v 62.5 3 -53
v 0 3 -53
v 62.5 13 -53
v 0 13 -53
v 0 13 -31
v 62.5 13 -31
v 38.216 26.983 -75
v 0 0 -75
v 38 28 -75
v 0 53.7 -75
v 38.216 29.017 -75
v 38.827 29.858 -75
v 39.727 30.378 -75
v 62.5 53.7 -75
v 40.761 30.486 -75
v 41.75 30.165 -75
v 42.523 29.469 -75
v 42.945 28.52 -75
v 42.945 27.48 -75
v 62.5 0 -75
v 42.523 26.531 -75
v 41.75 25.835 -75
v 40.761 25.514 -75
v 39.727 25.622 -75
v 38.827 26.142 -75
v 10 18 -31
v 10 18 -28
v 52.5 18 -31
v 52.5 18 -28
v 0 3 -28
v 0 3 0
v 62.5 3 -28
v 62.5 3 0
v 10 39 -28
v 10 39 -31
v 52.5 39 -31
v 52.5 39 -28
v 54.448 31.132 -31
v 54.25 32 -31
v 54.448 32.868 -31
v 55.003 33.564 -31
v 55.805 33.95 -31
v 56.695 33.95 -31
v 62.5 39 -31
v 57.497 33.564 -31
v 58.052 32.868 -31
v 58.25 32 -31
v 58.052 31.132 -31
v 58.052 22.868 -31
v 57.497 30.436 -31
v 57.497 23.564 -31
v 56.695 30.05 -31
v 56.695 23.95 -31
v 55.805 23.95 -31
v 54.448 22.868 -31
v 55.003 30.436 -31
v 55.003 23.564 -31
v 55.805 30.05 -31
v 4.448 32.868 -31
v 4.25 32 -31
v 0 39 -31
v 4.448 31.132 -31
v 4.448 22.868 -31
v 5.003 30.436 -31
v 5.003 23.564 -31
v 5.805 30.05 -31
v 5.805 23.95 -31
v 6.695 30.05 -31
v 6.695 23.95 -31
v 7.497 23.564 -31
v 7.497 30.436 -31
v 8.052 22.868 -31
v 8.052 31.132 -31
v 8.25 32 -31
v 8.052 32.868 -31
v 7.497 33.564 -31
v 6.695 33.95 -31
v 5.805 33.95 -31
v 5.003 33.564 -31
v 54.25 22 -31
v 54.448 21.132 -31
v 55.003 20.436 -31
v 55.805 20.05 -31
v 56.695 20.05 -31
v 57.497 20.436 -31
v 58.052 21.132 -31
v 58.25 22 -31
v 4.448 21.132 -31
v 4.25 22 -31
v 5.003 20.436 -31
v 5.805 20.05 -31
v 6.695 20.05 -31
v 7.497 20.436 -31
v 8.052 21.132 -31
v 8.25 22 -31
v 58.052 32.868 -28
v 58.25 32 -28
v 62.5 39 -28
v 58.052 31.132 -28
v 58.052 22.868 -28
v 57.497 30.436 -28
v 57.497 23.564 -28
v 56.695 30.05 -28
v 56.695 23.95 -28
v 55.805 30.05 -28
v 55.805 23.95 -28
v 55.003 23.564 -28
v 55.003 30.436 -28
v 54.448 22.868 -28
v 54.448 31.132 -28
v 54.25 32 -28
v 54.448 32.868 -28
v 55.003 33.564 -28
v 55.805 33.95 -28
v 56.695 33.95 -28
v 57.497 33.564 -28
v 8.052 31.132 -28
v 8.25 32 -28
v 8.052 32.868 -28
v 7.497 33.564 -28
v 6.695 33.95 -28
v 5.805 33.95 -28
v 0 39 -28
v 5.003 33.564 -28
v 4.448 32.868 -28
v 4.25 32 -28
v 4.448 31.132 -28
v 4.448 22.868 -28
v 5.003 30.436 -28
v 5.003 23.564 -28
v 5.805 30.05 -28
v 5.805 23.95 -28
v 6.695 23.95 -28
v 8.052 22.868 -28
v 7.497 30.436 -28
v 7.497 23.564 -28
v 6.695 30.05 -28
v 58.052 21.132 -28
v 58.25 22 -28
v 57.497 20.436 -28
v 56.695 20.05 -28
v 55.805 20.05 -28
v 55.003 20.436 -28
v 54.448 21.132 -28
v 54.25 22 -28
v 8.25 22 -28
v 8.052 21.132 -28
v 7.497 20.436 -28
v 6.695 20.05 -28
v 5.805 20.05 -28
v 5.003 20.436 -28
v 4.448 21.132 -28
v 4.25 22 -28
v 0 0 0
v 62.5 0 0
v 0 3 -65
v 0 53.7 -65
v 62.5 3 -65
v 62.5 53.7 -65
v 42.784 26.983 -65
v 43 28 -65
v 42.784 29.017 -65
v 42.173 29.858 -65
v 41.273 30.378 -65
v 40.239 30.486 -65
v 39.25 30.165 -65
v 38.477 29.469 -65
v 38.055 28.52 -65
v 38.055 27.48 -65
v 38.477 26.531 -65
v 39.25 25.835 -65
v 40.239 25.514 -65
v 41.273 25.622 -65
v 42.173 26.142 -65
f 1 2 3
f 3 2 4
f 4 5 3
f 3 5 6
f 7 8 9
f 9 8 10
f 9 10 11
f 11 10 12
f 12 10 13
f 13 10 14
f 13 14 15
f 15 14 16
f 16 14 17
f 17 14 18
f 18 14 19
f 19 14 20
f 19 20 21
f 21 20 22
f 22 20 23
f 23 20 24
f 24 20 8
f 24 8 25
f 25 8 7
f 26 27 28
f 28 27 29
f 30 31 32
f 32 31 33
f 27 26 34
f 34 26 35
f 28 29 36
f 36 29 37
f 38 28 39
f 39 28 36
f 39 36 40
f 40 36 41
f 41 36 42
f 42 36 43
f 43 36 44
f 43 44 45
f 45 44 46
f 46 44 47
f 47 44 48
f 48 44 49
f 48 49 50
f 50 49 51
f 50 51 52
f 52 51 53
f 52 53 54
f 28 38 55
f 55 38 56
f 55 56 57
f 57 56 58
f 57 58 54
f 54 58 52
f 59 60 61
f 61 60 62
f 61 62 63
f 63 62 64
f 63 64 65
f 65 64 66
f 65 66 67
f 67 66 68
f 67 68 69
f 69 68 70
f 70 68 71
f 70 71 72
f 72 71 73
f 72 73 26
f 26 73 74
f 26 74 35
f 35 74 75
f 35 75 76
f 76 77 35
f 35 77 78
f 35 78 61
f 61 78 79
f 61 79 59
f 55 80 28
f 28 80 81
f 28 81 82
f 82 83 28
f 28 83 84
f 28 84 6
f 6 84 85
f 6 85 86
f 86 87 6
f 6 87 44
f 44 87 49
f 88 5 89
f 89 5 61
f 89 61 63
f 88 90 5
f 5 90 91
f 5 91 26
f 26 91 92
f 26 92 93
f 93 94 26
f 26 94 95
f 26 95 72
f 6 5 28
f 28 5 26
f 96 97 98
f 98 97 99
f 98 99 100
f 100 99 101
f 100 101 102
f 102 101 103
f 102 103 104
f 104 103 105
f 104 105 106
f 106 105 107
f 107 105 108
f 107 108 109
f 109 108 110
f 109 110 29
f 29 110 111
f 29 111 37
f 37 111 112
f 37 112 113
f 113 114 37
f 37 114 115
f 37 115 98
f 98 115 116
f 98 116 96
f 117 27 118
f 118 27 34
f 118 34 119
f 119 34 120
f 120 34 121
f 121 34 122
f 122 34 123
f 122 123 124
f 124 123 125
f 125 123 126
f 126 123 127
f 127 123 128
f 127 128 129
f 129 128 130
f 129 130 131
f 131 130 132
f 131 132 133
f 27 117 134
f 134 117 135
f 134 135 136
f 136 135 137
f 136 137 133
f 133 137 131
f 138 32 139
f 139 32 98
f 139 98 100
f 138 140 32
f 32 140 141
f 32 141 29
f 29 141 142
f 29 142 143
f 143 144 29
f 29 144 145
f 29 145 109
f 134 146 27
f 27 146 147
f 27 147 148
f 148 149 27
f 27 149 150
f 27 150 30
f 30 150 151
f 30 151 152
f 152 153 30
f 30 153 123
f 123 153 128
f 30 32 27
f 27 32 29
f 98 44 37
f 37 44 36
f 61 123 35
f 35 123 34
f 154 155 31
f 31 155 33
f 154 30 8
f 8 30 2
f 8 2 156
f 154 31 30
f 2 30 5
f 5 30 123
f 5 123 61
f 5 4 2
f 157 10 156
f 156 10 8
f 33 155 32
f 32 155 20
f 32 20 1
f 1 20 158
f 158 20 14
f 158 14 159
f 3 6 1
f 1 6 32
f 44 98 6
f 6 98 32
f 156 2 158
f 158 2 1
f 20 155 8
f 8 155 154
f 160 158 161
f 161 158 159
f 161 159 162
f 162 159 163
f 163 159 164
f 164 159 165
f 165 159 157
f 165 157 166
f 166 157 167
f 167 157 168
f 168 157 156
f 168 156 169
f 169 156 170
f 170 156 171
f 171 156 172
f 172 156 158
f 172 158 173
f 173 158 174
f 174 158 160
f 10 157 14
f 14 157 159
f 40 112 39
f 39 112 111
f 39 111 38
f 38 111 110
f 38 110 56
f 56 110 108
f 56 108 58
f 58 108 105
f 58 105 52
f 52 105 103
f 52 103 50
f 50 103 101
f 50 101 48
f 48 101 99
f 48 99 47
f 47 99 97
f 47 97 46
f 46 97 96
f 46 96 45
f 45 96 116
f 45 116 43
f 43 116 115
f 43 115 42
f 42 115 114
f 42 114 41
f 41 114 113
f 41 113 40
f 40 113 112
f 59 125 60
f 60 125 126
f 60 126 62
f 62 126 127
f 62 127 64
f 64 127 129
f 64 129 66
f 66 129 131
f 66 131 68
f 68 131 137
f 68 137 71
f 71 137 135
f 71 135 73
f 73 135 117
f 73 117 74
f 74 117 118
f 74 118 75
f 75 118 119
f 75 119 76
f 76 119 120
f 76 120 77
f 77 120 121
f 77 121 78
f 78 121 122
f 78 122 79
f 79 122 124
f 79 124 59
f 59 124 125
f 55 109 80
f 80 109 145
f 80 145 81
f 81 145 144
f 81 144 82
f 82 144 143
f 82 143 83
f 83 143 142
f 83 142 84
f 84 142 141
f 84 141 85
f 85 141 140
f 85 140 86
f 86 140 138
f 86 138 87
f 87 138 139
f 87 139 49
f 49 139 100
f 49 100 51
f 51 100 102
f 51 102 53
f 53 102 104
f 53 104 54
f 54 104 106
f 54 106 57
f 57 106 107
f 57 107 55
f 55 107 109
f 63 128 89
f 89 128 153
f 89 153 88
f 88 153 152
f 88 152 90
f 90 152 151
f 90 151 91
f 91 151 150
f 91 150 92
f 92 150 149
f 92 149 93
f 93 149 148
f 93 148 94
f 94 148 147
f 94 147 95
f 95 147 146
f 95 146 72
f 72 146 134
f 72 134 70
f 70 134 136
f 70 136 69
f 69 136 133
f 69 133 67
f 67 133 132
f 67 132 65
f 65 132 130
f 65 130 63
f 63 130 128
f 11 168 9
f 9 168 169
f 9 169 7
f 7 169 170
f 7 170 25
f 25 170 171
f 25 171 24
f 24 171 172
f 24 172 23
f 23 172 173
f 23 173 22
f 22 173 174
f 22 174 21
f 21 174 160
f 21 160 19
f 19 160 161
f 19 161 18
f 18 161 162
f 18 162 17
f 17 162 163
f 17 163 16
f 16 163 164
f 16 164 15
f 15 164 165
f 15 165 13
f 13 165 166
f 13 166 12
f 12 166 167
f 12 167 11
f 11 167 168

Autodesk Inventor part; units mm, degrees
ref_plane "YZ Plane" through (0, 0, 0) normal (1, 0, 0) x (0, 1, 0)
ref_plane "XZ Plane" through (0, 0, 0) normal (0, 1, 0) x (-1, 0, 0)
ref_plane "XY Plane" through (0, 0, 0) normal (0, 0, 1) x (1, 0, 0)
sketch "Boceto1" plane through (0, 0, 0) normal (0, 1, 0) x (-1, 0, 0)
  line L0 (0, 0) -> (-62.5, 0)
  line L1 (-62.5, 0) -> (-62.5, -75)
  line L2 (-62.5, -75) -> (0, -75)
  line L3 (0, -75) -> (0, 0)
  dimension "d0" = 62.5
  dimension "d1" = 75
extrude "Extrusión1" add sketch "Boceto1" along normal blind 3
sketch "Boceto3" plane through (0, 3, 0) normal (0, 1, 0) x (1, 0, 0)
  line L0 (0, 0) -> (62.5, 0) construction
  line L1 (31.25, 0) -> (31.25, 28) construction
  line L2 (31.25, 28) -> (0, 28)
  line L3 (0, 28) -> (0, 31)
  line L4 (0, 75) -> (0, 0) projected
  line L5 (0, 31) -> (62.5, 31)
  line L6 (62.5, 0) -> (62.5, 75) projected
  line L7 (62.5, 28) -> (31.25, 28)
  line L8 (10, 28) -> (10, 31)
  line L9 (52.5, 28) -> (52.5, 31)
  line L10 (31.25, 31) -> (31.25, 53) construction
  line L11 (31.25, 53) -> (0, 53)
  line L12 (31.25, 53) -> (62.5, 53)
  line L13 (62.5, 75) -> (0, 75) construction
  line L14 (31.25, 75) -> (31.25, 65) construction
  line L15 (62.5, 65) -> (0, 65)
  line L16 (0, 65) -> (0, 75)
  line L17 (62.5, 75) -> (62.5, 65)
  line L18 (62.5, 75) -> (0, 75)
  dimension "d4" = 28
  dimension "d5" = 3
  dimension "d9" = 22
  dimension "d10" = 10
extrude "Extrusión2" add sketch "Boceto3" along normal blind 36 contours L2 L3 L5 L8 | L9 L5 L6 L7
extrude "Extrusión3" add sketch "Boceto3" along normal blind 15 contours L2 L8 L5 L9 L7
extrude "Extrusión4" add sketch "Boceto3" along normal blind 10 contours L5 L4 L11 L12 L6
extrude "Extrusión5" add sketch "Boceto3" along normal blind 50.7 contours L4 L18 L6 L15
sketch "Boceto4" plane through (0, 3, -28) normal (0, 0, 1) x (1, 0, 0)
  line L0 (62.5, 0) -> (0, 0) construction
  line L1 (62.5, 0) -> (62.5, 36) construction
  line L2 (52.5, 36) -> (62.5, 36) construction
  line L3 (52.5, 15) -> (52.5, 36) construction
  line L4 (10, 15) -> (52.5, 15) construction
  line L5 (10, 15) -> (10, 36) construction
  line L6 (0, 36) -> (10, 36) construction
  line L7 (0, 0) -> (0, 36) construction
  line L8 (0, 0) -> (0, 22) construction
  line L9 (0, 0) -> (0, 32) construction
  line L10 (0, -3) -> (0, 19) construction
  line L11 (0, 19) -> (62.5, 19) construction
  line L12 (0, -3) -> (0, 29) construction
  line L13 (0, 29) -> (62.5, 29) construction
  line L14 (0, 29) -> (6.25, 29) construction
  line L15 (0, 19) -> (6.25, 19) construction
  line L16 (62.5, 29) -> (56.25, 29) construction
  line L17 (62.5, 19) -> (56.25, 19) construction
  circle A0 centre (6.25, 29) radius 2
  circle A1 centre (6.25, 19) radius 2
  line L18 (62.5, -3) -> (0, -3) construction
  line L19 (31.25, -3) -> (31.25, 50.7118) construction
  circle A2 centre (56.25, 29) radius 2
  circle A3 centre (56.25, 19) radius 2
  dimension "d21" = 22
  dimension "d22" = 32
  dimension "d23" = 6.25
  dimension "d24" = 6.25
  dimension "d25" = 6.25
  dimension "d26" = 4
  dimension "d27" = 4
extrude "Extrusión6" cut sketch "Boceto4" against normal blind 20
sketch "Boceto5" plane through (0, 3, -65) normal (0, 0, 1) x (1, 0, 0)
  line L0 (62.5, -3) -> (0, -3) construction
  line L1 (0, -3) -> (0, 25) construction
  line L2 (0, 10) -> (0, 36) construction
  line L3 (0, -3) -> (40.5, -3) construction
  line L4 (40.5, -3) -> (40.5, 25) construction
  circle A0 centre (40.5, 25) radius 2.5
  dimension "d30" = 28
  dimension "d31" = 40.5
  dimension "d32" = 5
extrude "Extrusión7" cut sketch "Boceto5" against normal blind 20
properties part number "Mounting2"
